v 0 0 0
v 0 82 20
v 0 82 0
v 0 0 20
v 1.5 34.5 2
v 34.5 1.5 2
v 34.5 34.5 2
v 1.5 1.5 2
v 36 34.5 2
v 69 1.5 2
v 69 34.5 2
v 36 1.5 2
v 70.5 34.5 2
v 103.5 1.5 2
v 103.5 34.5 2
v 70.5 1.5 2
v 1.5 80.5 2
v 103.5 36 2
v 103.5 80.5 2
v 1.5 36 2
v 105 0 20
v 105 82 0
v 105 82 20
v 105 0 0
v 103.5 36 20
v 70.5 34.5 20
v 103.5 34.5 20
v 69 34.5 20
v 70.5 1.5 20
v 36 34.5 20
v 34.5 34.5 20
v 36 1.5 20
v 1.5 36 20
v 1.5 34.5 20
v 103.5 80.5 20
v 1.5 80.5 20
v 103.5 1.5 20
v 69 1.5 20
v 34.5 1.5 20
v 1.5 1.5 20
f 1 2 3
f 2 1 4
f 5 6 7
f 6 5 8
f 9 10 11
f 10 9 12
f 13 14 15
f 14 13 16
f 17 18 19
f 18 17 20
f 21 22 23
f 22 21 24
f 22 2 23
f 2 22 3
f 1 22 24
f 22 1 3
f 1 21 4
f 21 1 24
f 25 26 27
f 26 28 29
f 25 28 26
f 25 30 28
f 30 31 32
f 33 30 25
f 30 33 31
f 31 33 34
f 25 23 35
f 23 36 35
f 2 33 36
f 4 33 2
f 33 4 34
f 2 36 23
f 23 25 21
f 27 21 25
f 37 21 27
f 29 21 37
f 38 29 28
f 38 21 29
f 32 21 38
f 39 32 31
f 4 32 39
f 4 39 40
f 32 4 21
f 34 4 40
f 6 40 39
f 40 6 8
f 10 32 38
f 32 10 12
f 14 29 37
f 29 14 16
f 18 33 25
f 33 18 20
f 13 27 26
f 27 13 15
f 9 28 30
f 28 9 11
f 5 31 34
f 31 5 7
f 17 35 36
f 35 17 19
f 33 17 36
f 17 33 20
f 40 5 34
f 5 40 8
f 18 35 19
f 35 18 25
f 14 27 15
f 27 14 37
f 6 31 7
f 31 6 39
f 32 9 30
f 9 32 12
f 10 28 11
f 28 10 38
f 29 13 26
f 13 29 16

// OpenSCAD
union(){
    
  cube ([105,82,2]);
  translate([0,0,0]) cube ([105,1.5,20]);   
  translate([0,34.5,0]) cube ([105,1.5,20]);     
  translate([0,80.5,0]) cube ([105,1.5,20]);   
  translate([0,0,0]) cube ([1.5,82,20]);    
  translate([103.5,0,0]) cube ([1.5,82,20]);   
  translate([34.5,0,0]) cube ([1.5,34.5,20]);   
  translate([69,0,0]) cube ([1.5,34.5,20]);   
}
    
